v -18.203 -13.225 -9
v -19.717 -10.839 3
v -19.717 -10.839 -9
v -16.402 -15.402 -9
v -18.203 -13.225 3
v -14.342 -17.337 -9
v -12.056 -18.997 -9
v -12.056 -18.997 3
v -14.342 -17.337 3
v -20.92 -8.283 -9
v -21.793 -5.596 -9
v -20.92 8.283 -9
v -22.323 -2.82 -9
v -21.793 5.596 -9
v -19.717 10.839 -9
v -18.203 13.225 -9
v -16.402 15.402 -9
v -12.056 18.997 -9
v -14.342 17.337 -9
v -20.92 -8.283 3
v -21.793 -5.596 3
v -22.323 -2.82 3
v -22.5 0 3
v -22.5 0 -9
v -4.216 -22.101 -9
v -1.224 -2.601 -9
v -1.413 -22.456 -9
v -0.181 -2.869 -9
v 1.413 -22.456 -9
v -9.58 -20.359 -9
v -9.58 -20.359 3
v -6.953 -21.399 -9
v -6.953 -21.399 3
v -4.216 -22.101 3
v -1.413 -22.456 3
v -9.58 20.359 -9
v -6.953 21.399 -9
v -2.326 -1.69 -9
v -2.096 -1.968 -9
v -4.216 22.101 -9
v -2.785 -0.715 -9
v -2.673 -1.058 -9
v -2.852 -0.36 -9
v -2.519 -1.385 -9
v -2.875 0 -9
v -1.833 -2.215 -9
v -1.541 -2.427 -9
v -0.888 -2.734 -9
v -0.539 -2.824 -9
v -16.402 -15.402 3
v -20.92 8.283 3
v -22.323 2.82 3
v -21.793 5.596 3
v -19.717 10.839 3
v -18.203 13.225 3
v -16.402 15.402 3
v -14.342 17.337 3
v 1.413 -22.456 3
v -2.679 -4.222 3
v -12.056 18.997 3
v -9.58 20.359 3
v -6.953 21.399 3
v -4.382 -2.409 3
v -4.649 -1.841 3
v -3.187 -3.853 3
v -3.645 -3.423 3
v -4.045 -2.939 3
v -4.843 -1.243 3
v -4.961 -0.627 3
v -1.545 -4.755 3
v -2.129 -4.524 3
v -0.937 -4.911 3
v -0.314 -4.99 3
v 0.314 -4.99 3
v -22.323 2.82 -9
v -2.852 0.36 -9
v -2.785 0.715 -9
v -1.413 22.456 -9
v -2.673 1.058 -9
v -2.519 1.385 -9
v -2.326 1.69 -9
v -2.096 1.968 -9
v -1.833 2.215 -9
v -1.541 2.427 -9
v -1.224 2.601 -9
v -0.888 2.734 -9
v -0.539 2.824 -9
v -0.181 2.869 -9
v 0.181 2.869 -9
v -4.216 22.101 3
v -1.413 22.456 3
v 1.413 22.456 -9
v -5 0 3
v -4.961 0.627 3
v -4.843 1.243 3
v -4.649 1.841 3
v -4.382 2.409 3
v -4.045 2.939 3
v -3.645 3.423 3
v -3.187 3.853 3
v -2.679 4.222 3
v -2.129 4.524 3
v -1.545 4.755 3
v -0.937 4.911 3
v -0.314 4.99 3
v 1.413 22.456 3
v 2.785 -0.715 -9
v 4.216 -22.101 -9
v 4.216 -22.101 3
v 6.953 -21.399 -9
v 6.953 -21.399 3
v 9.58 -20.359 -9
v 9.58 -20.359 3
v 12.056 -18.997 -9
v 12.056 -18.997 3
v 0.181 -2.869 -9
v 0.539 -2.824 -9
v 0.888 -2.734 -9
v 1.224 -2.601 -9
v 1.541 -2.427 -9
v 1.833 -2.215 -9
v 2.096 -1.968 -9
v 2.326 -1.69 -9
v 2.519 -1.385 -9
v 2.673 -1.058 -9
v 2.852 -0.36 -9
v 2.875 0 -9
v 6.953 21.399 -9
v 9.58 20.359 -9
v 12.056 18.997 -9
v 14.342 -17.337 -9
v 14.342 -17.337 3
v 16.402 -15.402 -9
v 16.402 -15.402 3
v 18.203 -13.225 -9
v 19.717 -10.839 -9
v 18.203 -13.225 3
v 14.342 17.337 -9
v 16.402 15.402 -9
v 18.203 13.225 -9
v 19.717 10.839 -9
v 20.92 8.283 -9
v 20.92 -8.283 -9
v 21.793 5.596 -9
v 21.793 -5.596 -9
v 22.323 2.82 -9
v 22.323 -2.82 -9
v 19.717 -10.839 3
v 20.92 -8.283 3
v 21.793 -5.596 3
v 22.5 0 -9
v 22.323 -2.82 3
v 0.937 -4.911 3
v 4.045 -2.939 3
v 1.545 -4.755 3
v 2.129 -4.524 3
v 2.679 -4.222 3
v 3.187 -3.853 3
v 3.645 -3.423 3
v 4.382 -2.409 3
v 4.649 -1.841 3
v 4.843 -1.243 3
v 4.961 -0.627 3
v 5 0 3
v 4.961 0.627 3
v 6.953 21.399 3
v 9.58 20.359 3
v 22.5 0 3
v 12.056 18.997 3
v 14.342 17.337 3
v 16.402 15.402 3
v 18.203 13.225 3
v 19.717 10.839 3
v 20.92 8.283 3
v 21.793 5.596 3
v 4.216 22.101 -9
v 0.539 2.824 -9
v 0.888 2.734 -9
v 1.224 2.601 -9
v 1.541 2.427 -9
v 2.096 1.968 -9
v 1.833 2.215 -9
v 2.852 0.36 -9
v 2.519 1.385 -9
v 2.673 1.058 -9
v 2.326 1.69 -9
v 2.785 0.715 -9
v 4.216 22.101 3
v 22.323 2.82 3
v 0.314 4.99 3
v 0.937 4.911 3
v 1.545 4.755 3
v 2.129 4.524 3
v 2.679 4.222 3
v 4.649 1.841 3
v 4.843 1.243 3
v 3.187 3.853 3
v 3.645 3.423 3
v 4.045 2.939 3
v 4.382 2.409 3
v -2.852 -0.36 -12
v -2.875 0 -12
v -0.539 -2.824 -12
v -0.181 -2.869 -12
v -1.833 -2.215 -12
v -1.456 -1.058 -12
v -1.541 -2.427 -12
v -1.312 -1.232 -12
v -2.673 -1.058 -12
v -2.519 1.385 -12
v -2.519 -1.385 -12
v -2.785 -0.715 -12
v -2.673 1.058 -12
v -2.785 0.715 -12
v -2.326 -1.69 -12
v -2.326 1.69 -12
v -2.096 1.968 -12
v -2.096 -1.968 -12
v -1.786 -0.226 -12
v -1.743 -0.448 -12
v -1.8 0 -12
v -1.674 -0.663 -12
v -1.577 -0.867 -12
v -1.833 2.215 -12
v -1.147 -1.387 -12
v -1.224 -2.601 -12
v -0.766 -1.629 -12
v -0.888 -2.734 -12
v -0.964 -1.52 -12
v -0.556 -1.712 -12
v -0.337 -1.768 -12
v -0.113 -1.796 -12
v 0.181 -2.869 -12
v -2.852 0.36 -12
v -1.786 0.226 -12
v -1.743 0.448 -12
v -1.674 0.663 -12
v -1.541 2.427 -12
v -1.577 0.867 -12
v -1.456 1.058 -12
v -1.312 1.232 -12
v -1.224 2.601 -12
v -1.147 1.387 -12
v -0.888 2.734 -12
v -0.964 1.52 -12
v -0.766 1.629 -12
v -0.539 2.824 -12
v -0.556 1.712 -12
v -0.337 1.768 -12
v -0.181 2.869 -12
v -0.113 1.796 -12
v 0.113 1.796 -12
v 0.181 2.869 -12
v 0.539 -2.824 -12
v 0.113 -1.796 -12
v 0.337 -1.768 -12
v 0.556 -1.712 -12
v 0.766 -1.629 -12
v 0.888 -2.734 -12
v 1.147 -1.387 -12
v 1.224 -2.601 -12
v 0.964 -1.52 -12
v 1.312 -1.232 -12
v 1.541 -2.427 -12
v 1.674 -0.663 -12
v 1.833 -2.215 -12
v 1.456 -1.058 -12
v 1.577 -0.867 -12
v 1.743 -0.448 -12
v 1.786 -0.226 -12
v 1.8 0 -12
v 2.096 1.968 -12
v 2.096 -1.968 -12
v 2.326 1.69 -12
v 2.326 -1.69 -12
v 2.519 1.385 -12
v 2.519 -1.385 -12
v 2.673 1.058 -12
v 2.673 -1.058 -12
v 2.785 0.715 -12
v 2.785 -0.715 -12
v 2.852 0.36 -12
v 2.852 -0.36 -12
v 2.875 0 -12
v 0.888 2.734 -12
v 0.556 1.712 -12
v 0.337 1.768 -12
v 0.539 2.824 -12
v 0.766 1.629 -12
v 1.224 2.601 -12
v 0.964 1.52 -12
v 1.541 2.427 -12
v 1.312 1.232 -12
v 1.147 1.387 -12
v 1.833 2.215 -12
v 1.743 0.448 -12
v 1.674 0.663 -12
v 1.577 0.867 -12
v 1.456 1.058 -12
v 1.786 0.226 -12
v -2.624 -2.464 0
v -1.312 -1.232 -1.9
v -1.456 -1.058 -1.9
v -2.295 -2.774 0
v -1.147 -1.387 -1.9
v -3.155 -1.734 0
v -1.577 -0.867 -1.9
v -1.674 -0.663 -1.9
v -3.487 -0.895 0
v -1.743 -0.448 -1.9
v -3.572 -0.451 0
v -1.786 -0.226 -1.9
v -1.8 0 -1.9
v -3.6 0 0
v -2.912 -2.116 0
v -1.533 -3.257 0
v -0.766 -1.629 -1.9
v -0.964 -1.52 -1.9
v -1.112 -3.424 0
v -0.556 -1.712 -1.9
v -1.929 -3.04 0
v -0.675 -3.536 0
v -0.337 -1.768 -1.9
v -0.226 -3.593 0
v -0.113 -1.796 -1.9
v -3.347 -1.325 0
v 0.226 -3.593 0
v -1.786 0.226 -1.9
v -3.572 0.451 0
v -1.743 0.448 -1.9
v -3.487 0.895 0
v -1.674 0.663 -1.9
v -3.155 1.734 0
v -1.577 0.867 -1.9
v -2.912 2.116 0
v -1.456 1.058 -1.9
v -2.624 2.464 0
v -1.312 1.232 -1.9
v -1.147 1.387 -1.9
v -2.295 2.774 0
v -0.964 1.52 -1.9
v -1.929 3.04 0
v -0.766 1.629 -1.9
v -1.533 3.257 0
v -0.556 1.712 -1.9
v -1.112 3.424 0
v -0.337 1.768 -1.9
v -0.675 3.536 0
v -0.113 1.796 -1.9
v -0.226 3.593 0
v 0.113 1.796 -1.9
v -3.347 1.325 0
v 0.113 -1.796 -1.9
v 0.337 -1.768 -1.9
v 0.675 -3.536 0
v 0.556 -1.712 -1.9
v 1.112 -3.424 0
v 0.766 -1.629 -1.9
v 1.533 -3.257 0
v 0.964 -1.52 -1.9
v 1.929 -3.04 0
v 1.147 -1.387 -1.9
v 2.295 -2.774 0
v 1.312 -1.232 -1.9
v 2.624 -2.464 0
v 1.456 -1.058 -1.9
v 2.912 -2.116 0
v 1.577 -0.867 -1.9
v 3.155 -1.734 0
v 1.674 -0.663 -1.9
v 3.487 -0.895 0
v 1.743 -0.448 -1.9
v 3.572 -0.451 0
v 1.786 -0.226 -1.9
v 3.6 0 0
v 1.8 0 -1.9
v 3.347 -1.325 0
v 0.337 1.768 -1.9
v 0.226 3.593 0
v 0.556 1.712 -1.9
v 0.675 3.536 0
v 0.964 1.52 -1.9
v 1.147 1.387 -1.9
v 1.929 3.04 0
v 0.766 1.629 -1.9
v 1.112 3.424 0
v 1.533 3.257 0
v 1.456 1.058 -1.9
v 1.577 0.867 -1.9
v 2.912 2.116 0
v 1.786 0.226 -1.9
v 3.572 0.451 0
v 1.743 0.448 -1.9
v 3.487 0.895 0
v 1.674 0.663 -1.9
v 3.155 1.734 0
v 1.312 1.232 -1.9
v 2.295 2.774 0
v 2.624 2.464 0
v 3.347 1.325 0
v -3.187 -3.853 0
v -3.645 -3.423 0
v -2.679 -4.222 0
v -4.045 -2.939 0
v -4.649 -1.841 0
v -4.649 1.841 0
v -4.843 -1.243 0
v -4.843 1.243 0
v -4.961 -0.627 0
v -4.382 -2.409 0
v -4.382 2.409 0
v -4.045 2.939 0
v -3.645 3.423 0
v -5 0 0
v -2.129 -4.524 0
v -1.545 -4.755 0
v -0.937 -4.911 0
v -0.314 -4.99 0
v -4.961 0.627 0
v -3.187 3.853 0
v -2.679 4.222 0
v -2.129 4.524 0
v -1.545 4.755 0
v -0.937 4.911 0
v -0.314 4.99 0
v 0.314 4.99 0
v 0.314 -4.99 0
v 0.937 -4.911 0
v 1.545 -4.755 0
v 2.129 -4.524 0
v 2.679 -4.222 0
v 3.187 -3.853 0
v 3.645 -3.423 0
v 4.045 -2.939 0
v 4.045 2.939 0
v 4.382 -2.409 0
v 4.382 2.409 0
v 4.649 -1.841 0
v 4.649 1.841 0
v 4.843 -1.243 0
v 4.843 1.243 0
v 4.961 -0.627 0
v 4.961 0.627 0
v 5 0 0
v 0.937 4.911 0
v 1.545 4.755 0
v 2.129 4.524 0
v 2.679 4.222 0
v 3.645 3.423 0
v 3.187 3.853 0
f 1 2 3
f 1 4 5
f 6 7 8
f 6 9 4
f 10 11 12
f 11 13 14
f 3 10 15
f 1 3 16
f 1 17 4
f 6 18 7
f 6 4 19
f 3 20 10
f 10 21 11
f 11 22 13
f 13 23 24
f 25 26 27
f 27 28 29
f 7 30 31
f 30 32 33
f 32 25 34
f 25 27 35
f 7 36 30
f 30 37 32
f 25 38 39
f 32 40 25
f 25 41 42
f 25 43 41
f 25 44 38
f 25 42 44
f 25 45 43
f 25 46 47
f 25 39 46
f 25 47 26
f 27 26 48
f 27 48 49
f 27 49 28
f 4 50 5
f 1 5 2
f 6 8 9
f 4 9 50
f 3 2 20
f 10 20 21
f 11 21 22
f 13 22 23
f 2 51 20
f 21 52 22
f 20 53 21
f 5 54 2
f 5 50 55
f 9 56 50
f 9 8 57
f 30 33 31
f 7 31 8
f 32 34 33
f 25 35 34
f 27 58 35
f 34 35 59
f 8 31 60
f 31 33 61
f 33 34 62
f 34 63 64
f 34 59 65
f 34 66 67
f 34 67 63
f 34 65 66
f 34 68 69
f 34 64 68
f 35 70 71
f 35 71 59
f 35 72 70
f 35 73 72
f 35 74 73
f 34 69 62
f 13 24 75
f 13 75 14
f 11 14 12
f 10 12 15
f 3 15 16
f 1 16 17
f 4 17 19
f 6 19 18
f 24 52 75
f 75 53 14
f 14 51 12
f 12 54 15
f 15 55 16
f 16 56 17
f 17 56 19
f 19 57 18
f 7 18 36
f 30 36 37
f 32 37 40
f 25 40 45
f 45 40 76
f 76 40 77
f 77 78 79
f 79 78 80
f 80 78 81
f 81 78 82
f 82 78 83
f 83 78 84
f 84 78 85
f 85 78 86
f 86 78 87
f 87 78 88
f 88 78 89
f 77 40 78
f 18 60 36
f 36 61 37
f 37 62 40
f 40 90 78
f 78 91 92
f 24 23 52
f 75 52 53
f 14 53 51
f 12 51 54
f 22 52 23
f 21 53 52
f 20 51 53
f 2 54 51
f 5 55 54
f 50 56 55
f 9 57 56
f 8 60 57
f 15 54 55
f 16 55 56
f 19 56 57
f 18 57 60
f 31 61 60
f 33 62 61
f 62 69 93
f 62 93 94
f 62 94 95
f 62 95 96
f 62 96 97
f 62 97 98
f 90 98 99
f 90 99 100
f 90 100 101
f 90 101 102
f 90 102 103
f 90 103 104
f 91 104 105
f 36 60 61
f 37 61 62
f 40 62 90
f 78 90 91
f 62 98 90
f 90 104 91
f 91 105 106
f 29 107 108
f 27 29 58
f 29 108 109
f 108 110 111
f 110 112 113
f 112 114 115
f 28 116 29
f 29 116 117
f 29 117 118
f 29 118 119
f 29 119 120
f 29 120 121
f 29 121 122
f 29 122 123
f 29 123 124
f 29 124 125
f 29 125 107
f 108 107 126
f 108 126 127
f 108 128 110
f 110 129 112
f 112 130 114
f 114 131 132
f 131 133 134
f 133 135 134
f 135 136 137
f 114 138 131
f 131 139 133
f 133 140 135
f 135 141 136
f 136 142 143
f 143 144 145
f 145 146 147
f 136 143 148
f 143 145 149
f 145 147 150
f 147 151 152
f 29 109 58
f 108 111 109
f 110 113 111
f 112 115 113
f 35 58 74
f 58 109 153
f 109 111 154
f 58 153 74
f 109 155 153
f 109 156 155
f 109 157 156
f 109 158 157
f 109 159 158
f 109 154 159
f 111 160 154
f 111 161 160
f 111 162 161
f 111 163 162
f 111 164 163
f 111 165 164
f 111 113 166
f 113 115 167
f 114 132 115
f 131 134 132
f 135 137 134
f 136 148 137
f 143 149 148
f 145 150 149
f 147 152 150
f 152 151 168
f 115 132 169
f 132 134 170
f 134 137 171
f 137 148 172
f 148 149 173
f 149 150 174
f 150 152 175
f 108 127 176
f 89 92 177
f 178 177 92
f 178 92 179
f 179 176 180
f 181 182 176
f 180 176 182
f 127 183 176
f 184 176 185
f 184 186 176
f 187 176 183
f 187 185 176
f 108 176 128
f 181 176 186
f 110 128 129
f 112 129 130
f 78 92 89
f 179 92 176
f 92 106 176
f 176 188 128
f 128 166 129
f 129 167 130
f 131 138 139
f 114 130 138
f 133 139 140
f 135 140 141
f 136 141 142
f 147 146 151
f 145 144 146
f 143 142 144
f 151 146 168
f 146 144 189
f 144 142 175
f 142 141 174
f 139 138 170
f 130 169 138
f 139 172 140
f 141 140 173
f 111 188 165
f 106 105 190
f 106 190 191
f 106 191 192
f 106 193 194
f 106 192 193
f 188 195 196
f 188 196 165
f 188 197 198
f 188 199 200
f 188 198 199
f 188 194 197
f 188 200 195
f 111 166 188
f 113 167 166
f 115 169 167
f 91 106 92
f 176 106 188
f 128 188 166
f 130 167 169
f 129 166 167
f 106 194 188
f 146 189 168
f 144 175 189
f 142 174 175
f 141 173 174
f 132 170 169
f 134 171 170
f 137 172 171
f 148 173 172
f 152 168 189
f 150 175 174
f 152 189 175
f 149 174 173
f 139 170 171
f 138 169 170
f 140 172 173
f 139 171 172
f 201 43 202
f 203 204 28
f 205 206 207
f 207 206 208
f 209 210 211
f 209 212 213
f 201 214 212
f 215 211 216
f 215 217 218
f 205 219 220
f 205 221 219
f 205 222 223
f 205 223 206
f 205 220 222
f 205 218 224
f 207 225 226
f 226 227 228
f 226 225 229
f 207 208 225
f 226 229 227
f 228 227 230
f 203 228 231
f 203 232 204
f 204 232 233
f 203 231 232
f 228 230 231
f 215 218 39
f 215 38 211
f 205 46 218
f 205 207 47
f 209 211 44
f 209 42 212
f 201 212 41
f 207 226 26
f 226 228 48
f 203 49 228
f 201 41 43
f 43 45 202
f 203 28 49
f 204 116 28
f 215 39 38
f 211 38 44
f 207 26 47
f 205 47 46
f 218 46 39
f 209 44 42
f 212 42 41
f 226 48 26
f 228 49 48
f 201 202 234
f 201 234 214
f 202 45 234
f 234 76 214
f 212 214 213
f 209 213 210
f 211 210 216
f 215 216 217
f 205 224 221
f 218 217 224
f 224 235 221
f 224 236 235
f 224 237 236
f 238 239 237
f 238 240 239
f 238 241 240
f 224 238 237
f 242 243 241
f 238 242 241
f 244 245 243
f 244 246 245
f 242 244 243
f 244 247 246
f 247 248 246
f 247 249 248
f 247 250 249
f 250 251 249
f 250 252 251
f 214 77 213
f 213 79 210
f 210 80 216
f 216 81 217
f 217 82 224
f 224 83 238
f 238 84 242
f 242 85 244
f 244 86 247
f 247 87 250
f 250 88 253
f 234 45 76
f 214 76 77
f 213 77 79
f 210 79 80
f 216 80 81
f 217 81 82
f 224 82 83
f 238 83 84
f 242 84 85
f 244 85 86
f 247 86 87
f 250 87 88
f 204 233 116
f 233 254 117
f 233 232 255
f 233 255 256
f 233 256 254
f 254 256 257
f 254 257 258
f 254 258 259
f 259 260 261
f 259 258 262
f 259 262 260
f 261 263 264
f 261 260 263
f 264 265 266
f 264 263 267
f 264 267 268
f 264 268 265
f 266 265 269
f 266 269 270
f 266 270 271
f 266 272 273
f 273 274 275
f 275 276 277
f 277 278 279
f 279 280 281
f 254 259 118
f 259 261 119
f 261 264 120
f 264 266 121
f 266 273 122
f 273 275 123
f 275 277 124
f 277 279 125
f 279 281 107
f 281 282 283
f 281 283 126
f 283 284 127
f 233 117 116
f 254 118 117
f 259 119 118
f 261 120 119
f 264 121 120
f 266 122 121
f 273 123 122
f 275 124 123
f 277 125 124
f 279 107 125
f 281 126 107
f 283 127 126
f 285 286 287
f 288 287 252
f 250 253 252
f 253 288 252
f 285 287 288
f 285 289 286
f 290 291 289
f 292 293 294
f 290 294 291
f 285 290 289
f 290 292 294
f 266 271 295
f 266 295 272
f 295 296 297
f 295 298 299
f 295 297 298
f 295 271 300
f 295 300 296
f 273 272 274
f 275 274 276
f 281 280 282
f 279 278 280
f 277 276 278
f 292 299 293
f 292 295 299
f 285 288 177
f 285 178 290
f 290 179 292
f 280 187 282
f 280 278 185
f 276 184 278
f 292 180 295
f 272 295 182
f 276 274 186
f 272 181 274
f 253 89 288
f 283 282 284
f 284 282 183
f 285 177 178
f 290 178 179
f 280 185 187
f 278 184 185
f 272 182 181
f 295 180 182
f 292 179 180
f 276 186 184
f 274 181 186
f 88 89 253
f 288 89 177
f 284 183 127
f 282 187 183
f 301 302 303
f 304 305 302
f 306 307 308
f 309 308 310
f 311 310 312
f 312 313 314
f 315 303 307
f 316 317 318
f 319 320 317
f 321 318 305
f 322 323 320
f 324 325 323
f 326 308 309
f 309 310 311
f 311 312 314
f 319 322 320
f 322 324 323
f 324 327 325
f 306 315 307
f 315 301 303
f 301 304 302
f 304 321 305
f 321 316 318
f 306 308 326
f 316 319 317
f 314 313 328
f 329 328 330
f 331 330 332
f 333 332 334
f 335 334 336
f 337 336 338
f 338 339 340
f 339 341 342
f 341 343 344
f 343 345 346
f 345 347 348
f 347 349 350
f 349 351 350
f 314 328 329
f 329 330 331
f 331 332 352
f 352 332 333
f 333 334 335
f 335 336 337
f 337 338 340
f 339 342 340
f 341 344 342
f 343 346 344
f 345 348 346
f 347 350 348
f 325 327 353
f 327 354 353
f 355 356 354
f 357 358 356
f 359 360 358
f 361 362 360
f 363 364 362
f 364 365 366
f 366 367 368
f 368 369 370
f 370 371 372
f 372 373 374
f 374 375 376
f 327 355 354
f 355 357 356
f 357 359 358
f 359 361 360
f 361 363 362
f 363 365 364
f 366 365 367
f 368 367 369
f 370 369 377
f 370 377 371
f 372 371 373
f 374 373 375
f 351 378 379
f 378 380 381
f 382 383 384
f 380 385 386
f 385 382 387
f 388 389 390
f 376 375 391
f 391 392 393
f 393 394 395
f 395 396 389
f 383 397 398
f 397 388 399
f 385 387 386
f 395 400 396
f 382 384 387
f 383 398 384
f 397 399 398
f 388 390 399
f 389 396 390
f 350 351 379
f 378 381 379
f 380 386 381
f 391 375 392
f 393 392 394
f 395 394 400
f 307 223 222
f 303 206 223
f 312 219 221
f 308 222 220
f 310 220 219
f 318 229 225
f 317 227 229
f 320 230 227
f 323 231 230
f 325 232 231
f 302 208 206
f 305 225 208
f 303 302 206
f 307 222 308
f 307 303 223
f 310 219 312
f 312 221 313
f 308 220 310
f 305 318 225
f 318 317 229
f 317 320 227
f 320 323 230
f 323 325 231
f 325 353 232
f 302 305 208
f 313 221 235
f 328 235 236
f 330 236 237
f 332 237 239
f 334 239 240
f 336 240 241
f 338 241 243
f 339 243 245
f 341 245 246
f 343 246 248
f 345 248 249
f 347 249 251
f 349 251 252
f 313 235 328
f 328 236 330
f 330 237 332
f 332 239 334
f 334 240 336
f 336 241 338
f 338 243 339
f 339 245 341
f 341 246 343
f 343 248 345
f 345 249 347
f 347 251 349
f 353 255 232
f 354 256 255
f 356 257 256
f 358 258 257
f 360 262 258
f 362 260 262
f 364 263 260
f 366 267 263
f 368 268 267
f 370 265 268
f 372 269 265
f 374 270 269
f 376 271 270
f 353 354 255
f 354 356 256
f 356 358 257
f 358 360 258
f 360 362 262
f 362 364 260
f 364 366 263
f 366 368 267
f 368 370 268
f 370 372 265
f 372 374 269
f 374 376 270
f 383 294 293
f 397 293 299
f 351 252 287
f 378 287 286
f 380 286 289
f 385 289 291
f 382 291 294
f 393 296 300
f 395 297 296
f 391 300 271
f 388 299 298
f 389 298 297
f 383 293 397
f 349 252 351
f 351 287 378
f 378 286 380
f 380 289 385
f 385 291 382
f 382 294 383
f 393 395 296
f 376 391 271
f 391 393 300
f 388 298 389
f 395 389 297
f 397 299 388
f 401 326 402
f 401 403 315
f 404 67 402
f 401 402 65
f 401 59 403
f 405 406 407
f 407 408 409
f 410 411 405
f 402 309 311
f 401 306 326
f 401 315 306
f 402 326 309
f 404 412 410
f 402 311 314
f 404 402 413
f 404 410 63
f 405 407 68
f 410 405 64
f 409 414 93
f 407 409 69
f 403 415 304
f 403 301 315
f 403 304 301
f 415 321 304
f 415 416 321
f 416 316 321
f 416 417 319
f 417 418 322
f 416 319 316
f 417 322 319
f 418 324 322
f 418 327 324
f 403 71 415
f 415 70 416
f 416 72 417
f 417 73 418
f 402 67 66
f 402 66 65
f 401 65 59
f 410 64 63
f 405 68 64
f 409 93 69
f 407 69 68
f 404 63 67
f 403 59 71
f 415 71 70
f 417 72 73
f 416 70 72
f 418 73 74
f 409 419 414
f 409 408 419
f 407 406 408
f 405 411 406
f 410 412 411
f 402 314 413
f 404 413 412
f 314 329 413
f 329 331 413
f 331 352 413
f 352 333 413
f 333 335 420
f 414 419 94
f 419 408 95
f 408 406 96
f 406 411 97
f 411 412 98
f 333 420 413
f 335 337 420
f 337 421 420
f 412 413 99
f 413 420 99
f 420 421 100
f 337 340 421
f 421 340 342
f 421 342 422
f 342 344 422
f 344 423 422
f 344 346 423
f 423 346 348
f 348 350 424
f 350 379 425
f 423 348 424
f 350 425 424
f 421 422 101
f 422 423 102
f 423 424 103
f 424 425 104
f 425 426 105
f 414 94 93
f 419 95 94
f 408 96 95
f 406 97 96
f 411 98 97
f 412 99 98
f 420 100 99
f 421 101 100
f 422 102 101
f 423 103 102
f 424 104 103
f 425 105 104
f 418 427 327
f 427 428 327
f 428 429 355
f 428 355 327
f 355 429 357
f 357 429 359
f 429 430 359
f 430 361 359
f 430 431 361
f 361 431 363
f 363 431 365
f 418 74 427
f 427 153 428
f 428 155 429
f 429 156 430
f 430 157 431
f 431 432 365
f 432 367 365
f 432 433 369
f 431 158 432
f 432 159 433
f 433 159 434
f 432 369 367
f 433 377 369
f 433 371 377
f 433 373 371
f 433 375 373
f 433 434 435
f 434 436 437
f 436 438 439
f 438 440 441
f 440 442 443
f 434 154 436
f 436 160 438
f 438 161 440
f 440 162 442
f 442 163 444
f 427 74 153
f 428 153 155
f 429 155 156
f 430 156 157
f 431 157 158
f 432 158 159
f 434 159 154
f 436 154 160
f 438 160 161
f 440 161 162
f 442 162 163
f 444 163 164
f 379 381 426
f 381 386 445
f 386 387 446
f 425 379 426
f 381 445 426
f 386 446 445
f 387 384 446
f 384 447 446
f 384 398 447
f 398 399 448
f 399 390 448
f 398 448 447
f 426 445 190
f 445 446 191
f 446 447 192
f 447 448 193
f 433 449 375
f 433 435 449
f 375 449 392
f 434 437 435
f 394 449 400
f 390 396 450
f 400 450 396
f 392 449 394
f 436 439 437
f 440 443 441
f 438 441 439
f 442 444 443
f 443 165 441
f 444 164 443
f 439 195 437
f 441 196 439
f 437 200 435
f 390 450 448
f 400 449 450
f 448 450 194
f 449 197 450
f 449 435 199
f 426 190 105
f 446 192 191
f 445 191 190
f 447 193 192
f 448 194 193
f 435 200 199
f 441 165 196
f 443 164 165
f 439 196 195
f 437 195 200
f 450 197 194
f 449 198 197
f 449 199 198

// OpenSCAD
$fn = 50;

difference() {
	union() {
		translate(v = [0, 0, -9.0]) {
			cylinder(h = 12, r = 22.5);
		}
		#translate(v = [0, 0, -12.0]) {
			cylinder(h = 12, r = 2.875);
		}
	}
	union() {
		translate(v = [0, 0, 0]) {
			rotate(a = [0, 0, 0]) {
				difference() {
					union() {
						translate(v = [0, 0, -12.0]) {
							cylinder(h = 12, r = 1.5);
						}
						translate(v = [0, 0, -1.9]) {
							cylinder(h = 1.9, r1 = 1.8, r2 = 3.6);
						}
						translate(v = [0, 0, -12.0]) {
							cylinder(h = 12, r = 1.8);
						}
						translate(v = [0, 0, -12.0]) {
							cylinder(h = 12, r = 1.5);
						}
					}
					union();
				}
			}
		}
		#cylinder(h = 3, r = 5.0);
	}
}
